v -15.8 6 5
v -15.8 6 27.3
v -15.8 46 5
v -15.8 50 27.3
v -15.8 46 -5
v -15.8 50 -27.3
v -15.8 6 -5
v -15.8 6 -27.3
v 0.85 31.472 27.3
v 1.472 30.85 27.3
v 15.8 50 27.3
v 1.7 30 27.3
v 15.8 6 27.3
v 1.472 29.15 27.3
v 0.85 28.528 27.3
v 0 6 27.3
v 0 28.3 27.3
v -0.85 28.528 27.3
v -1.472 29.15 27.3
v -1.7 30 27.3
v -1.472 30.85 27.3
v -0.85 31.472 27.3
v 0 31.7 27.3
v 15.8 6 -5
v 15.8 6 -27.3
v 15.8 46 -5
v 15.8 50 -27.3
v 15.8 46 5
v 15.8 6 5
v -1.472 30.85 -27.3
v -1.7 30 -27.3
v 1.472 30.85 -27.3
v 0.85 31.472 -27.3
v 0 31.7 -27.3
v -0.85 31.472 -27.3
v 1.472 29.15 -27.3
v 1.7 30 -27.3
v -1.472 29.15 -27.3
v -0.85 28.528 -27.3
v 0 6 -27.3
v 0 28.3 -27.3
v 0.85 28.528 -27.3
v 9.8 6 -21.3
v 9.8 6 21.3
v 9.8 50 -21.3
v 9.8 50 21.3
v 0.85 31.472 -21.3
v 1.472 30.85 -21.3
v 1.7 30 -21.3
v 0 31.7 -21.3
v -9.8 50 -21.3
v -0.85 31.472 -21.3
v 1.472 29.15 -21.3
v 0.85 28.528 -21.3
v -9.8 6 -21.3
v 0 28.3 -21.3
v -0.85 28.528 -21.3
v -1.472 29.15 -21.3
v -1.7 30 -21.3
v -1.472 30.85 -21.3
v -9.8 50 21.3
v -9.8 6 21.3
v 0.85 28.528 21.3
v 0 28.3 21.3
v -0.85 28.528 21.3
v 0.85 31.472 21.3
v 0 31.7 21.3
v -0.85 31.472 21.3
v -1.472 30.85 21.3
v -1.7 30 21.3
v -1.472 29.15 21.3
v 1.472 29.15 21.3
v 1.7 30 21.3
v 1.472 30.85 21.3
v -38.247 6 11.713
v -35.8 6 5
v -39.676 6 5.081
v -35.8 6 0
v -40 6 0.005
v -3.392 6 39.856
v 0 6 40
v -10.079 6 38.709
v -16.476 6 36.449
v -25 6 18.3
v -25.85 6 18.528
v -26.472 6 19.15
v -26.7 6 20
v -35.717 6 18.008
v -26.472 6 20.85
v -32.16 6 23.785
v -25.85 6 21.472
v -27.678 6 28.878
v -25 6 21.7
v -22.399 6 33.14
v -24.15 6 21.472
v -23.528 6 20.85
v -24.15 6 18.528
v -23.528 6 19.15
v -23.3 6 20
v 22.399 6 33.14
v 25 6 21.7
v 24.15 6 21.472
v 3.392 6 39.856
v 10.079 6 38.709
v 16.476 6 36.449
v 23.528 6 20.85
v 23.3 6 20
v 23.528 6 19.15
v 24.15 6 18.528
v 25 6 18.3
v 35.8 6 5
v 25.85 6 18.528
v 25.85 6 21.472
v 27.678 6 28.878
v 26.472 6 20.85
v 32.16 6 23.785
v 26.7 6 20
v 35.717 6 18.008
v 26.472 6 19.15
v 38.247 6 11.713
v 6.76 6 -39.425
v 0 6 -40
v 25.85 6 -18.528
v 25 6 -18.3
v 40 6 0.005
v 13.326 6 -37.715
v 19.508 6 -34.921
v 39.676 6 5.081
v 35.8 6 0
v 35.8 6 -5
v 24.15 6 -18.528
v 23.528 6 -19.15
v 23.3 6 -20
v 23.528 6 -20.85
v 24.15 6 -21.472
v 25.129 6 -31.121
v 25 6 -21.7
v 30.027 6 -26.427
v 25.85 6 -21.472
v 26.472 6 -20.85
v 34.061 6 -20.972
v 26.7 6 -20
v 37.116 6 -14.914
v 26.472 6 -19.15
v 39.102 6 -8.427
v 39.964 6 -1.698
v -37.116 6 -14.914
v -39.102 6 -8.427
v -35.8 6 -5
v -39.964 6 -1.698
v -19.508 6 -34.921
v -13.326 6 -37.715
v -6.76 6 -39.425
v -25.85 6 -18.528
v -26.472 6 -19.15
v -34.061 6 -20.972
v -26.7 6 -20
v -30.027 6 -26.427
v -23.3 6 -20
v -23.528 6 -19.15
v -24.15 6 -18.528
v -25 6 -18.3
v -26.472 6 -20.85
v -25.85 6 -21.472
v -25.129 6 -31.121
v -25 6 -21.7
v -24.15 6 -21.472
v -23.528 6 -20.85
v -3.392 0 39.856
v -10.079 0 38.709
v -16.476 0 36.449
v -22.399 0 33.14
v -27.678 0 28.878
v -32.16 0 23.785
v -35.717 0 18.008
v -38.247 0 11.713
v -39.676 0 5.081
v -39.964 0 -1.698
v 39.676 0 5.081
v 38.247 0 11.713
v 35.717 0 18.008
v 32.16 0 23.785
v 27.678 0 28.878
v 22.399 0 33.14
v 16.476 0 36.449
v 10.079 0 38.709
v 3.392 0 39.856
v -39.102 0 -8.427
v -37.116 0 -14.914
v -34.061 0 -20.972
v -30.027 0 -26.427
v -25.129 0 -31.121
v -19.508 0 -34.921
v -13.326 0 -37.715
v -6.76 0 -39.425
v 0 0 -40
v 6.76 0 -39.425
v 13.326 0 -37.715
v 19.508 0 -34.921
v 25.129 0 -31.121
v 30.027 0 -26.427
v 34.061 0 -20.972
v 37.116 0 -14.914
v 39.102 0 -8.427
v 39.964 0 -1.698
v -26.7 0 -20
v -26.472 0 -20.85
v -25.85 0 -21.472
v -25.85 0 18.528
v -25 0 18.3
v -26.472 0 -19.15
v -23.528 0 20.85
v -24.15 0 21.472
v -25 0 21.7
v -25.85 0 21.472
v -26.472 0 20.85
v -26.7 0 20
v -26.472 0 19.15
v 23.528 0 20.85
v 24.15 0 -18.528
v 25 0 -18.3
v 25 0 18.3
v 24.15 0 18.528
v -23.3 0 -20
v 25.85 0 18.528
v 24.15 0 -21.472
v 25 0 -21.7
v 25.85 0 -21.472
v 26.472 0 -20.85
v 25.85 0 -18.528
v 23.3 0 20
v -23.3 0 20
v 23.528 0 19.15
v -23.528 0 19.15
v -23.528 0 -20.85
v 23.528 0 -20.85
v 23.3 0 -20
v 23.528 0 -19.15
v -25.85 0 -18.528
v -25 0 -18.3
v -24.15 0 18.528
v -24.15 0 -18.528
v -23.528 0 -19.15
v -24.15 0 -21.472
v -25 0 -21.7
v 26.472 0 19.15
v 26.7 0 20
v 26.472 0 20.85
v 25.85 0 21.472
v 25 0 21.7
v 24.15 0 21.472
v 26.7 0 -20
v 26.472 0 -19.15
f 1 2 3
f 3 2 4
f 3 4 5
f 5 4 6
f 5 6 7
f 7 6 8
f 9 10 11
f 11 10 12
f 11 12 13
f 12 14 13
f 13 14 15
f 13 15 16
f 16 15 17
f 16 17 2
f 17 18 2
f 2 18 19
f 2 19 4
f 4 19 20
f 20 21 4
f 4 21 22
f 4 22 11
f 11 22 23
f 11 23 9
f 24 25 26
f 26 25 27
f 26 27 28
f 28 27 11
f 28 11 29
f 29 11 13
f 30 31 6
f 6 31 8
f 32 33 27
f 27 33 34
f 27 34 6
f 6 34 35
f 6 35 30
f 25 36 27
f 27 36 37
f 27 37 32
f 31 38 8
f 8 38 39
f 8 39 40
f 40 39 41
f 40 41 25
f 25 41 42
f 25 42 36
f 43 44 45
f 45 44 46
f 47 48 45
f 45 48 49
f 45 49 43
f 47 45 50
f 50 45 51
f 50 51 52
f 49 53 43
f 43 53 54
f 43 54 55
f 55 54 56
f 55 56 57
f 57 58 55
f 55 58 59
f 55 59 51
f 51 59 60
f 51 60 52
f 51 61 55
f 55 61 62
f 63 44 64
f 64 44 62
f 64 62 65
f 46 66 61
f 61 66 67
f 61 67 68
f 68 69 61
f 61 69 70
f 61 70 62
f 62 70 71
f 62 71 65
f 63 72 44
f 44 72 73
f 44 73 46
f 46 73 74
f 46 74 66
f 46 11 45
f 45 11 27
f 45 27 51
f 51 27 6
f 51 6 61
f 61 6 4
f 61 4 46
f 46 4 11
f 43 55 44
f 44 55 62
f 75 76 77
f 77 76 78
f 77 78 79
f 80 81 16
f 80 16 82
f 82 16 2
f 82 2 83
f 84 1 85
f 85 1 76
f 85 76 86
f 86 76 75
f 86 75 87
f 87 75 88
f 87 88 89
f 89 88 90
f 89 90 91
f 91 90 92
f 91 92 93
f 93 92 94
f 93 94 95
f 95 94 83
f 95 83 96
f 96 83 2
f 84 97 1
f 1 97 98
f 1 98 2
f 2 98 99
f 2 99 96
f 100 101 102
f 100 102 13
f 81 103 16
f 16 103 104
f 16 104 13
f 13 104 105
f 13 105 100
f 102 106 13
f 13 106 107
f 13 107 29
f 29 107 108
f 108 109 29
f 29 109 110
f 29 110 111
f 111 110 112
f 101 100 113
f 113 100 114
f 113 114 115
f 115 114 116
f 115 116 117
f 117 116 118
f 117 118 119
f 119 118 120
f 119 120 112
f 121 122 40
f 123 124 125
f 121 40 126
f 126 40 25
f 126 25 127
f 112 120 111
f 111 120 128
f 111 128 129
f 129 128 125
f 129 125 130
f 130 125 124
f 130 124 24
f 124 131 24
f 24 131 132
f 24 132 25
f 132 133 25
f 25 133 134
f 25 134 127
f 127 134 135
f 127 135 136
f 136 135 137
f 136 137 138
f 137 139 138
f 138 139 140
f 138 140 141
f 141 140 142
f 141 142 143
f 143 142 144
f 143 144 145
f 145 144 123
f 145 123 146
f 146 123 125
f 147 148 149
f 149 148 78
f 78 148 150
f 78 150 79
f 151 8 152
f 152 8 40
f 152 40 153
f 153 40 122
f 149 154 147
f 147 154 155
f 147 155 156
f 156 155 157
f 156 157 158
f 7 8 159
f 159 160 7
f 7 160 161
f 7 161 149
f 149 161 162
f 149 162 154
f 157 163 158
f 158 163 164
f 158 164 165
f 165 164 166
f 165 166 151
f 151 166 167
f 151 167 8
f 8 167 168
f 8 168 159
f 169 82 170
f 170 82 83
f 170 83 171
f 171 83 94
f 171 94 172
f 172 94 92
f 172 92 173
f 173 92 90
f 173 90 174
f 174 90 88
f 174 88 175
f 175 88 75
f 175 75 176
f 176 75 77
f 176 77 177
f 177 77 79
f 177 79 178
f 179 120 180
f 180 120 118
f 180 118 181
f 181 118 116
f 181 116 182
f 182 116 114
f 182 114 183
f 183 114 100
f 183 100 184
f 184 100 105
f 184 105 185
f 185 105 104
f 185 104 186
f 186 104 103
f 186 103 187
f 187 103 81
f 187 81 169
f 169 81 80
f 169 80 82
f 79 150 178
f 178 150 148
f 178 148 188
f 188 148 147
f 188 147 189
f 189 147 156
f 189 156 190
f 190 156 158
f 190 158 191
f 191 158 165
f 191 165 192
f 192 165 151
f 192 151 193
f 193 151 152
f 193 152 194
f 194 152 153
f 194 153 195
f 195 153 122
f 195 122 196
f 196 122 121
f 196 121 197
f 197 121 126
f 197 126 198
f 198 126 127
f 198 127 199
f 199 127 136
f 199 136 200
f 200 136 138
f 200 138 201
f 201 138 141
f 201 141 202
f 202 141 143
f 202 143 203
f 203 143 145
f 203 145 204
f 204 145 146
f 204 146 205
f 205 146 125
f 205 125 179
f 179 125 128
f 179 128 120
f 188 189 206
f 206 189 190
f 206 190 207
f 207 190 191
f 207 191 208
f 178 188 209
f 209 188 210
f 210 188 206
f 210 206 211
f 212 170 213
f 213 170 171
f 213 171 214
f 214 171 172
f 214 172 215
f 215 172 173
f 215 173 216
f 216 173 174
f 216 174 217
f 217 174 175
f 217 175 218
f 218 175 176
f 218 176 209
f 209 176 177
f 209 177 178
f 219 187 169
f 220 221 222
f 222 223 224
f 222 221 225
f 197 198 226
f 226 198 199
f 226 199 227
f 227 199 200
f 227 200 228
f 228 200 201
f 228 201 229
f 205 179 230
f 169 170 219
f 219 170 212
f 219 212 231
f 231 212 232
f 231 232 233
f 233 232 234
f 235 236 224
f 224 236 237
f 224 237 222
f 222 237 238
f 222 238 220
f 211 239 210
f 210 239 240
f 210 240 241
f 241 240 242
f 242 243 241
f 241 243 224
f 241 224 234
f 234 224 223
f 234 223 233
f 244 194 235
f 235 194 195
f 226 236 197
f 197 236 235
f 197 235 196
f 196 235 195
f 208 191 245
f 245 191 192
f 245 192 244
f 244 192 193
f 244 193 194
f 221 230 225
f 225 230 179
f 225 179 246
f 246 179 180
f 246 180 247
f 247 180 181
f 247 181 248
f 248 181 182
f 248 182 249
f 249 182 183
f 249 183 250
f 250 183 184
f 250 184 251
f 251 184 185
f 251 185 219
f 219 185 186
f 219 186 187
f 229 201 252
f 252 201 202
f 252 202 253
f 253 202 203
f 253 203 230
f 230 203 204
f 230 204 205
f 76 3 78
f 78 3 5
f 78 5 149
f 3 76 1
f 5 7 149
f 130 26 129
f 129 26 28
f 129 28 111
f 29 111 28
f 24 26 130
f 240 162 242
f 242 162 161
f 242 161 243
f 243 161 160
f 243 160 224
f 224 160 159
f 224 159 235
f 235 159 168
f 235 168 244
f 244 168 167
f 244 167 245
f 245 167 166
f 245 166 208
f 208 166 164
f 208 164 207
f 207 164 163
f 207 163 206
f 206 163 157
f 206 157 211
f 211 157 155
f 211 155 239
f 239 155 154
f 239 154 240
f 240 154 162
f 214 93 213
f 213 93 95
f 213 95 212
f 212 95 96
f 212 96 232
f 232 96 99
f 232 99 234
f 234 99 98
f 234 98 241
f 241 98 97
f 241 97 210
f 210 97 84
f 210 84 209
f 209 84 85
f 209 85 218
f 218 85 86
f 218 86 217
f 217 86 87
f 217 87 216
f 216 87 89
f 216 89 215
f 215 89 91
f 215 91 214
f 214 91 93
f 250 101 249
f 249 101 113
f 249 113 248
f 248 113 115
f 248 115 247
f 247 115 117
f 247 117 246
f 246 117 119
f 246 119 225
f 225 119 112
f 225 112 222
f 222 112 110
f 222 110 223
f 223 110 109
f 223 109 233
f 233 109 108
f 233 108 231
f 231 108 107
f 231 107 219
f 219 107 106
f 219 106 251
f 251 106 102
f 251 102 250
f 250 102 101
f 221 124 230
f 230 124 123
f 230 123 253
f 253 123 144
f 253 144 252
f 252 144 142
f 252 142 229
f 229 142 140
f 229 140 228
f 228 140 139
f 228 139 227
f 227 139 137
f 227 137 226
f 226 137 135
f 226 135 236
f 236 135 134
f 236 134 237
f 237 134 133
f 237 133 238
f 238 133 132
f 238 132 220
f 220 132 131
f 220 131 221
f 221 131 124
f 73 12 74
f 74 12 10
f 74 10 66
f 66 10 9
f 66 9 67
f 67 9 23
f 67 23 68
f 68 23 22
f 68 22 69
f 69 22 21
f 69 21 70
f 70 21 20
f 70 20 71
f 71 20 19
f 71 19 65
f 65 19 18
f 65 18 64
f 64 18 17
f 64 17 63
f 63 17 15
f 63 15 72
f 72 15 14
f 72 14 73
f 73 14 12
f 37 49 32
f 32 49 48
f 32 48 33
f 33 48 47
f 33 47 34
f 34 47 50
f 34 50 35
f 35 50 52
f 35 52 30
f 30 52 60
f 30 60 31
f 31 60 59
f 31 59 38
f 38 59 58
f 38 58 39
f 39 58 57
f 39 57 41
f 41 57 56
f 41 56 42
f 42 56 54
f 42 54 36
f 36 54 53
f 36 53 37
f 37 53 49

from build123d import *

# Parameters (mm, degrees)
CROQUIS1_W              = 31.6
CROQUIS1_H              = 54.6
CROQUIS1_W_2            = 19.6
CROQUIS1_H_2            = 42.6
SALIENTE_EXTRUIR1_DEPTH = 50
CROQUIS2_R              = 40
SALIENTE_EXTRUIR2_DEPTH = 6
NERVIO4_REACH           = 77.498
CROQUIS3_WALL_W         = 197.718048256
CROQUIS3_WALL_H         = 10
CROQUIS4_R              = 1.7
CORTAR_EXTRUIR1_DEPTH   = 10
CROQUIS5_R              = 1.7
CORTAR_EXTRUIR2_DEPTH   = 60


with BuildPart() as part:
    # Croquis1 → Saliente-Extruir1 (new body)
    with BuildSketch(Plane(origin=(0, 0, 0), x_dir=(1, 0, 0), z_dir=(0, 1, 0))):
        Rectangle(CROQUIS1_W, CROQUIS1_H)
        Rectangle(CROQUIS1_W_2, CROQUIS1_H_2, mode=Mode.SUBTRACT)
    extrude(amount=SALIENTE_EXTRUIR1_DEPTH)

    # Croquis2 → Saliente-Extruir2 (add)
    with BuildSketch(Plane(origin=(0, 0, 0), x_dir=(-1, 0, 0), z_dir=(0, -1, 0))):
        with Locations(Location((0, 0, 0), (0, 0, 90))):
            Circle(CROQUIS2_R)
    extrude(amount=-SALIENTE_EXTRUIR2_DEPTH)

    # Croquis3 wall → Nervio4 (add, up to next)
    with BuildSketch(Plane(origin=(-25.8, 26, 0), x_dir=(-0.4472135955, -0.894427191, 0), z_dir=(0.894427191, -0.4472135955, 0)), mode=Mode.PRIVATE) as nervio4_sk1:
        Rectangle(CROQUIS3_WALL_W, CROQUIS3_WALL_H)
    nervio4_tool1 = extrude(nervio4_sk1.sketch, amount=NERVIO4_REACH, mode=Mode.PRIVATE) - part.part
    nervio4 = nervio4_tool1.solids().sort_by_distance((-25.8, 26, 0))[0]
    add(nervio4)

    # Simetría1: Nervio4 across plane
    add(nervio4.mirror(Plane(origin=(0, 0, 0), x_dir=(0, 0, 1), z_dir=(1, 0, 0))))

    # Croquis4 → Cortar-Extruir1 (cut)
    with BuildSketch(Plane(origin=(0, 6, 0), x_dir=(1, 0, 0), z_dir=(0, 1, 0))):
        with Locations(Location((-25, 20, 0), (0, 0, 270))):
            Circle(CROQUIS4_R)
        with Locations(Location((-25, -20, 0), (0, 0, 270))):
            Circle(CROQUIS4_R)
        with Locations(Location((25, -20, 0), (0, 0, 270))):
            Circle(CROQUIS4_R)
        with Locations(Location((25, 20, 0), (0, 0, 270))):
            Circle(CROQUIS4_R)
    extrude(amount=-CORTAR_EXTRUIR1_DEPTH, mode=Mode.SUBTRACT)

    # Croquis5 → Cortar-Extruir2 (cut)
    with BuildSketch(Plane.XY.offset(27.3)):
        with Locations((0, 30)):
            Circle(CROQUIS5_R)
    extrude(amount=-CORTAR_EXTRUIR2_DEPTH, mode=Mode.SUBTRACT)


solid = part.part
